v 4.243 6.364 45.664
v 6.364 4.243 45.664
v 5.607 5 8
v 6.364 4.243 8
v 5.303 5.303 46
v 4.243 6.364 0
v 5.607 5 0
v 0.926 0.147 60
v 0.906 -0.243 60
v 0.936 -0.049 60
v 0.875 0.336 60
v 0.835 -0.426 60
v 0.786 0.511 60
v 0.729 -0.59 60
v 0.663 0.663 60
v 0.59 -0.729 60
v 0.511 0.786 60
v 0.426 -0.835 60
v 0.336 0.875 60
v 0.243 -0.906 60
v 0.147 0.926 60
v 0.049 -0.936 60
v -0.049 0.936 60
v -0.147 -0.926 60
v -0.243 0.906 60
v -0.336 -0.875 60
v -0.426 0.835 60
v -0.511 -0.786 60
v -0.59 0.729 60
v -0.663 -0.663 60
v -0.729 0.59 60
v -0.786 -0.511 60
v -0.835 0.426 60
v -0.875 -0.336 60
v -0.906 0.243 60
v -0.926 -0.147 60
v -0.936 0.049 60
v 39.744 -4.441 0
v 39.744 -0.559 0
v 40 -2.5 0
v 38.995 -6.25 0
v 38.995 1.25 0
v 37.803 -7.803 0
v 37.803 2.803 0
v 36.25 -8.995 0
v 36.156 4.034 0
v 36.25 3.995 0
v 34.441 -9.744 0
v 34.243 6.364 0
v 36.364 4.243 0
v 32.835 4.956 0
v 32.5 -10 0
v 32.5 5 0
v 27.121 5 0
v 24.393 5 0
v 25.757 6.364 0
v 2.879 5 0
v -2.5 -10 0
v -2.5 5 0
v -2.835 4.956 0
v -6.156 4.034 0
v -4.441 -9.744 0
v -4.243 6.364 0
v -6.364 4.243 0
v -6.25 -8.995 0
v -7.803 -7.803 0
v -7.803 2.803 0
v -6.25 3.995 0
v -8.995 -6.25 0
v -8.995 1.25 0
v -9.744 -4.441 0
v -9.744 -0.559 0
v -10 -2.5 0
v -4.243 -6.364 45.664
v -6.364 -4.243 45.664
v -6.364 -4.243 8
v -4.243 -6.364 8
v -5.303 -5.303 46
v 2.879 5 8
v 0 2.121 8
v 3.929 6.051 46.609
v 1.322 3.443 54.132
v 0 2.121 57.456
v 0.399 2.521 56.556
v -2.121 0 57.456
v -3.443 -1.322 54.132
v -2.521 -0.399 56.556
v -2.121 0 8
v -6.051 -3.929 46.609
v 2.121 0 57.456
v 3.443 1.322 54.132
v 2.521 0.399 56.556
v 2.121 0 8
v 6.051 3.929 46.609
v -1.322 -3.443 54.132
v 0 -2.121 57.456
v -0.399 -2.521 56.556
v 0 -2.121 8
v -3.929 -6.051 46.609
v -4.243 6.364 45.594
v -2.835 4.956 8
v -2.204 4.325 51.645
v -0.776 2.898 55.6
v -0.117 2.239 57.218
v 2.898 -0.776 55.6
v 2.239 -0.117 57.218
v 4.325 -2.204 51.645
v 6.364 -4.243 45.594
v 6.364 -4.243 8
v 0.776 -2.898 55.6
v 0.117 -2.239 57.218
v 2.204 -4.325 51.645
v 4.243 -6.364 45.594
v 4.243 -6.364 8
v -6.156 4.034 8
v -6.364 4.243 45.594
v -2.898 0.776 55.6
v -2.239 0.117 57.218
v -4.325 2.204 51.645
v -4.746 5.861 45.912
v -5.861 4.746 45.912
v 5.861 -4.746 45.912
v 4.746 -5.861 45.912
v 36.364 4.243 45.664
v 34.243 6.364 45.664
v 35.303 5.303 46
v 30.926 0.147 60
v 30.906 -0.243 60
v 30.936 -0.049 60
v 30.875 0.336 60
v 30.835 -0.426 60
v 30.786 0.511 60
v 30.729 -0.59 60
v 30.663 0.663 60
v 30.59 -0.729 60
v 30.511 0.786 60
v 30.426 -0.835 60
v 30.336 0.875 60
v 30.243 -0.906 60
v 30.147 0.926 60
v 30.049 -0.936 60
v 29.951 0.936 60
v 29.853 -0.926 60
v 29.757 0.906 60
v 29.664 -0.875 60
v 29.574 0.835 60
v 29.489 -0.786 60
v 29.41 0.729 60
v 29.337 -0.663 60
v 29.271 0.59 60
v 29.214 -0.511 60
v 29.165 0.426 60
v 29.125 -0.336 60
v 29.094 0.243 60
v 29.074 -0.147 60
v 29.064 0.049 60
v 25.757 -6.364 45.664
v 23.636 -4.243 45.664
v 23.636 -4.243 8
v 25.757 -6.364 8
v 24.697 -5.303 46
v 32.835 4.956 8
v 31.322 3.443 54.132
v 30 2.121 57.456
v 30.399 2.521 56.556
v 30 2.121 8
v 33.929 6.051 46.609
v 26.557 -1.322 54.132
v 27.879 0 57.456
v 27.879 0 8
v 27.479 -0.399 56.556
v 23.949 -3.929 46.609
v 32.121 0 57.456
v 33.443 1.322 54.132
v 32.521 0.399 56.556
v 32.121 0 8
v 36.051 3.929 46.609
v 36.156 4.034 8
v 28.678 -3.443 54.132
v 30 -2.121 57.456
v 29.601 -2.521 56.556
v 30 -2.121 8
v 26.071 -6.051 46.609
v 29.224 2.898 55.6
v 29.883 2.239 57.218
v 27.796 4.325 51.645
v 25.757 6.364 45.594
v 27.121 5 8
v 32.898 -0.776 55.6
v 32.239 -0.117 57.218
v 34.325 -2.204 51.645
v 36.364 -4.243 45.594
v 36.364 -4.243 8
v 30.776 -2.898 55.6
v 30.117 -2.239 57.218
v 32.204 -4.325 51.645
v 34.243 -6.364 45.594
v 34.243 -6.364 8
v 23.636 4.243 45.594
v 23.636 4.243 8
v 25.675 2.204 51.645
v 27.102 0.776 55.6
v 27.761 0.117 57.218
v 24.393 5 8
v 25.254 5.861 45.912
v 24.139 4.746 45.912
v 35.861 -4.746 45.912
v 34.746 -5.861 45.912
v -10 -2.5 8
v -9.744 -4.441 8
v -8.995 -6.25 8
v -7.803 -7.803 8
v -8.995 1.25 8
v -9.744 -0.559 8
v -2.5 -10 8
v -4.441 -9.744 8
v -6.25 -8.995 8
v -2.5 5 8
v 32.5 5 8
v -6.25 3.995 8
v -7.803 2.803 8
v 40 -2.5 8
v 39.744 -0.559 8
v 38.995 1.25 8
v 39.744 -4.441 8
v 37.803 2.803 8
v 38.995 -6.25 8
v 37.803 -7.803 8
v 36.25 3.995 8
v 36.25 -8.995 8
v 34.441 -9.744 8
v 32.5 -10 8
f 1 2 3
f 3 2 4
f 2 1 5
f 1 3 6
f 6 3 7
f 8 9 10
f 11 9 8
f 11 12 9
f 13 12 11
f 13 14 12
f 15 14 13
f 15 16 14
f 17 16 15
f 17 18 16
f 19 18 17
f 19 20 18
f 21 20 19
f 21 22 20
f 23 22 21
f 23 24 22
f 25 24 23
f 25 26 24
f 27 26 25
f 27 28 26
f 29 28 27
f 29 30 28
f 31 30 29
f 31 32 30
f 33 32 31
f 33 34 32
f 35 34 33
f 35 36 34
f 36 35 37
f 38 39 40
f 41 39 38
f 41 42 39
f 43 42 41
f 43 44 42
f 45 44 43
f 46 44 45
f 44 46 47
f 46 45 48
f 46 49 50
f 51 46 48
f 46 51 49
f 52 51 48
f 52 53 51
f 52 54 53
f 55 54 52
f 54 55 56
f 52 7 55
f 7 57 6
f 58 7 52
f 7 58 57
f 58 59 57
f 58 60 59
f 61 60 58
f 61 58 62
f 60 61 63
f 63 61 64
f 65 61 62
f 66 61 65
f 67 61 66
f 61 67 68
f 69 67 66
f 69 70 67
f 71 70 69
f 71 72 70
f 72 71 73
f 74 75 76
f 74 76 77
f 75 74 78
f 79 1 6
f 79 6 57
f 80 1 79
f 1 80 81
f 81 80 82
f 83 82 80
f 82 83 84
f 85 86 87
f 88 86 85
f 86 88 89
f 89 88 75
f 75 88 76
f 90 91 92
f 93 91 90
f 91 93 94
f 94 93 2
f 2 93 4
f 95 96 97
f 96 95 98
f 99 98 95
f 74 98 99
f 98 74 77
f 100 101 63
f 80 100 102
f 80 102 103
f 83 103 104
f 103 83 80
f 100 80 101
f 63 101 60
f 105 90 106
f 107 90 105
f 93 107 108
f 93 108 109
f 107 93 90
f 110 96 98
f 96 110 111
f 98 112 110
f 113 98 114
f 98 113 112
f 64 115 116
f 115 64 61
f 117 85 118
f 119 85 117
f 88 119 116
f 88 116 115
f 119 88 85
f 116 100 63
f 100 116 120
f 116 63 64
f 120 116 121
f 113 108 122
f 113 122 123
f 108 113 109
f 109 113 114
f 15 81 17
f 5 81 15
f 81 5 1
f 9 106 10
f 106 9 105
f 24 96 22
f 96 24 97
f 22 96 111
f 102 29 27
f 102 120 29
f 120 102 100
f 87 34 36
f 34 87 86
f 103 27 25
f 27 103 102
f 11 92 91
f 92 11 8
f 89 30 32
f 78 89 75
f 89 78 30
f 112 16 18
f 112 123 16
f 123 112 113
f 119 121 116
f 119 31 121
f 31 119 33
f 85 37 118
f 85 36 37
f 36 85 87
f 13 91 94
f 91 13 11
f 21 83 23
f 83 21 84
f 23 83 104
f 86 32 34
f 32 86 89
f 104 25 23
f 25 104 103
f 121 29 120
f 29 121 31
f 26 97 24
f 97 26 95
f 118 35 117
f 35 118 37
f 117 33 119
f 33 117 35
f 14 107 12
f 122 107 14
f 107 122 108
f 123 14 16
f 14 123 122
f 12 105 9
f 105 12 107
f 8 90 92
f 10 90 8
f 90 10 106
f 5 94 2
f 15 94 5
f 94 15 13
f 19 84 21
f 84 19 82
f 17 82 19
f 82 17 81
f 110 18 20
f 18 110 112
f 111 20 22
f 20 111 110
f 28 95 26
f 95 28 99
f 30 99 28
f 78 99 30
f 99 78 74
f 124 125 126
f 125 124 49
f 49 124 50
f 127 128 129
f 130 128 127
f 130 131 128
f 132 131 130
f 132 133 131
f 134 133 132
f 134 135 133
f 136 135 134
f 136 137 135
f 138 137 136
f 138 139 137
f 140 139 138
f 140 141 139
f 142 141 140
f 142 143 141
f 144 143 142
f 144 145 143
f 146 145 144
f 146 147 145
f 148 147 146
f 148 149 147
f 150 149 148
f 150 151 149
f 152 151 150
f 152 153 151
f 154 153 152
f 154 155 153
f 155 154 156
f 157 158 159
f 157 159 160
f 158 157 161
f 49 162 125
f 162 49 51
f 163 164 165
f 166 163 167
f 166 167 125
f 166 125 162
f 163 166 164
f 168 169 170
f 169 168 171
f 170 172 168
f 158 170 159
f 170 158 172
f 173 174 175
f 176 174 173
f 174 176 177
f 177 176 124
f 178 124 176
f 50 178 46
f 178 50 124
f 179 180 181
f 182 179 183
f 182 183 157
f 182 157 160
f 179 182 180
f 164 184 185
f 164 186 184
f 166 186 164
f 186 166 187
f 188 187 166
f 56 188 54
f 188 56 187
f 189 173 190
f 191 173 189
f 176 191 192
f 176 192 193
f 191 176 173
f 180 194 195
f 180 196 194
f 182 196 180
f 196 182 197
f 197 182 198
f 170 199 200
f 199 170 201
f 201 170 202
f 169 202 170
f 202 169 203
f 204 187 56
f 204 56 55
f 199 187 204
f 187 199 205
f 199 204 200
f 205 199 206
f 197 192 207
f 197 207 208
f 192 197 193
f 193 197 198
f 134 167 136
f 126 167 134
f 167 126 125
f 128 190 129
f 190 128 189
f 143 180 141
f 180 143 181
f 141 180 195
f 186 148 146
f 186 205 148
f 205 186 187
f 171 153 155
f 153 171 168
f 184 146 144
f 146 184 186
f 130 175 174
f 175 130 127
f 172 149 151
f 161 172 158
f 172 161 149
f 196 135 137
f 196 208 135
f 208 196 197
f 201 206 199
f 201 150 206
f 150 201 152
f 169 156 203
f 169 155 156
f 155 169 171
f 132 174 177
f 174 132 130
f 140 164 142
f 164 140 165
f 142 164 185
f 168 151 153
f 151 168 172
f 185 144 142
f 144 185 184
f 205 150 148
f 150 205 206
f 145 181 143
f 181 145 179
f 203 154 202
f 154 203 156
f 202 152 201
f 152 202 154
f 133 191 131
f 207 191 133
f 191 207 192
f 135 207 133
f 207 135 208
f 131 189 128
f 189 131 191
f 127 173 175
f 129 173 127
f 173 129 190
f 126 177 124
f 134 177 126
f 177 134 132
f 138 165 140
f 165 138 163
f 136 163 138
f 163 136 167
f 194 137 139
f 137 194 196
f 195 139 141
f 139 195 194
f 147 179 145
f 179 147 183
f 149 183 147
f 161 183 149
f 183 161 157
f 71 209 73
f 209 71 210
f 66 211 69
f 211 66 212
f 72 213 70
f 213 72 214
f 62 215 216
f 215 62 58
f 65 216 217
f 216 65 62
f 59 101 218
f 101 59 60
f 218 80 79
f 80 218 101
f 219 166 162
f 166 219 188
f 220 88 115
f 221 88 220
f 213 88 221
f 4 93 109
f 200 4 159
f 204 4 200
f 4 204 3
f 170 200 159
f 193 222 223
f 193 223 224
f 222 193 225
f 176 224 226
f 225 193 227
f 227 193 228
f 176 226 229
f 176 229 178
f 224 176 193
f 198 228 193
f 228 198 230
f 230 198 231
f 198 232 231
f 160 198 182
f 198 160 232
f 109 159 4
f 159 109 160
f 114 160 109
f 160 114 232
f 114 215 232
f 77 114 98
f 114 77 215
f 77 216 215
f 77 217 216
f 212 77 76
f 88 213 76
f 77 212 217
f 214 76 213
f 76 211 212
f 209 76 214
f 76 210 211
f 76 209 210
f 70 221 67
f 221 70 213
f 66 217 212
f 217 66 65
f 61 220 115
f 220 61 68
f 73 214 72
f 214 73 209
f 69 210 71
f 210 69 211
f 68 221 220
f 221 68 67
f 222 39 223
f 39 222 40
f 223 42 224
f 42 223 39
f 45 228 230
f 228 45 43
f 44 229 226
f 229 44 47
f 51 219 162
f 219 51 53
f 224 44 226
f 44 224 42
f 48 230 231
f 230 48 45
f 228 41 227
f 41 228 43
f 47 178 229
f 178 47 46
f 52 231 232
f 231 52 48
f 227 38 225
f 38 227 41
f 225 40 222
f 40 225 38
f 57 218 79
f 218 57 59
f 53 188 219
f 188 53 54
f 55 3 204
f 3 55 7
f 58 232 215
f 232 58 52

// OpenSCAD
// file: utils/roundedParallelepiped4.scad
module roundedParallelepiped4(x, y, z, r) {
    union() {
        translate([r,r,0]) cylinder(h=z, r=r);
        translate([x-r,r,0]) cylinder(h=z, r=r);
        translate([r,y-r,0]) cylinder(h=z, r=r);
        translate([x-r,y-r,0]) cylinder(h=z, r=r);
        translate([r,0,0]) cube([x-2*r, y, z]);
        translate([0,r,0]) cube([x, y-2*r, z]);
    }
}
// main file
include <./utils/roundedParallelepiped4.scad>;

height=60;

width=15;
thickness=3;
head=28;

rotate([0,0,45]) difference() {
	union() {
		translate([-width/2, -thickness/2, 0]) cube([width,thickness,height]);
		translate([-thickness/2, -width/2, 0]) cube([thickness,width,height]);
	}
	translate([0,0,height/2]) {
		difference() {
			cylinder(r1=width, r2=width, h=height-head);
			cylinder(r1=width, r2=0, h=height-head);
		}
	}
}

translate([30,0,0]) rotate([0,0,45]) difference() {
	union() {
		translate([-width/2, -thickness/2, 0]) cube([width,thickness,height]);
		translate([-thickness/2, -width/2, 0]) cube([thickness,width,height]);
	}
	translate([0,0,height/2]) {
		difference() {
			cylinder(r1=width, r2=width, h=height-head);
			cylinder(r1=width, r2=0, h=height-head);
		}
	}
}

translate([-10,-10,0]) roundedParallelepiped4(50, width, 8, width/2);
